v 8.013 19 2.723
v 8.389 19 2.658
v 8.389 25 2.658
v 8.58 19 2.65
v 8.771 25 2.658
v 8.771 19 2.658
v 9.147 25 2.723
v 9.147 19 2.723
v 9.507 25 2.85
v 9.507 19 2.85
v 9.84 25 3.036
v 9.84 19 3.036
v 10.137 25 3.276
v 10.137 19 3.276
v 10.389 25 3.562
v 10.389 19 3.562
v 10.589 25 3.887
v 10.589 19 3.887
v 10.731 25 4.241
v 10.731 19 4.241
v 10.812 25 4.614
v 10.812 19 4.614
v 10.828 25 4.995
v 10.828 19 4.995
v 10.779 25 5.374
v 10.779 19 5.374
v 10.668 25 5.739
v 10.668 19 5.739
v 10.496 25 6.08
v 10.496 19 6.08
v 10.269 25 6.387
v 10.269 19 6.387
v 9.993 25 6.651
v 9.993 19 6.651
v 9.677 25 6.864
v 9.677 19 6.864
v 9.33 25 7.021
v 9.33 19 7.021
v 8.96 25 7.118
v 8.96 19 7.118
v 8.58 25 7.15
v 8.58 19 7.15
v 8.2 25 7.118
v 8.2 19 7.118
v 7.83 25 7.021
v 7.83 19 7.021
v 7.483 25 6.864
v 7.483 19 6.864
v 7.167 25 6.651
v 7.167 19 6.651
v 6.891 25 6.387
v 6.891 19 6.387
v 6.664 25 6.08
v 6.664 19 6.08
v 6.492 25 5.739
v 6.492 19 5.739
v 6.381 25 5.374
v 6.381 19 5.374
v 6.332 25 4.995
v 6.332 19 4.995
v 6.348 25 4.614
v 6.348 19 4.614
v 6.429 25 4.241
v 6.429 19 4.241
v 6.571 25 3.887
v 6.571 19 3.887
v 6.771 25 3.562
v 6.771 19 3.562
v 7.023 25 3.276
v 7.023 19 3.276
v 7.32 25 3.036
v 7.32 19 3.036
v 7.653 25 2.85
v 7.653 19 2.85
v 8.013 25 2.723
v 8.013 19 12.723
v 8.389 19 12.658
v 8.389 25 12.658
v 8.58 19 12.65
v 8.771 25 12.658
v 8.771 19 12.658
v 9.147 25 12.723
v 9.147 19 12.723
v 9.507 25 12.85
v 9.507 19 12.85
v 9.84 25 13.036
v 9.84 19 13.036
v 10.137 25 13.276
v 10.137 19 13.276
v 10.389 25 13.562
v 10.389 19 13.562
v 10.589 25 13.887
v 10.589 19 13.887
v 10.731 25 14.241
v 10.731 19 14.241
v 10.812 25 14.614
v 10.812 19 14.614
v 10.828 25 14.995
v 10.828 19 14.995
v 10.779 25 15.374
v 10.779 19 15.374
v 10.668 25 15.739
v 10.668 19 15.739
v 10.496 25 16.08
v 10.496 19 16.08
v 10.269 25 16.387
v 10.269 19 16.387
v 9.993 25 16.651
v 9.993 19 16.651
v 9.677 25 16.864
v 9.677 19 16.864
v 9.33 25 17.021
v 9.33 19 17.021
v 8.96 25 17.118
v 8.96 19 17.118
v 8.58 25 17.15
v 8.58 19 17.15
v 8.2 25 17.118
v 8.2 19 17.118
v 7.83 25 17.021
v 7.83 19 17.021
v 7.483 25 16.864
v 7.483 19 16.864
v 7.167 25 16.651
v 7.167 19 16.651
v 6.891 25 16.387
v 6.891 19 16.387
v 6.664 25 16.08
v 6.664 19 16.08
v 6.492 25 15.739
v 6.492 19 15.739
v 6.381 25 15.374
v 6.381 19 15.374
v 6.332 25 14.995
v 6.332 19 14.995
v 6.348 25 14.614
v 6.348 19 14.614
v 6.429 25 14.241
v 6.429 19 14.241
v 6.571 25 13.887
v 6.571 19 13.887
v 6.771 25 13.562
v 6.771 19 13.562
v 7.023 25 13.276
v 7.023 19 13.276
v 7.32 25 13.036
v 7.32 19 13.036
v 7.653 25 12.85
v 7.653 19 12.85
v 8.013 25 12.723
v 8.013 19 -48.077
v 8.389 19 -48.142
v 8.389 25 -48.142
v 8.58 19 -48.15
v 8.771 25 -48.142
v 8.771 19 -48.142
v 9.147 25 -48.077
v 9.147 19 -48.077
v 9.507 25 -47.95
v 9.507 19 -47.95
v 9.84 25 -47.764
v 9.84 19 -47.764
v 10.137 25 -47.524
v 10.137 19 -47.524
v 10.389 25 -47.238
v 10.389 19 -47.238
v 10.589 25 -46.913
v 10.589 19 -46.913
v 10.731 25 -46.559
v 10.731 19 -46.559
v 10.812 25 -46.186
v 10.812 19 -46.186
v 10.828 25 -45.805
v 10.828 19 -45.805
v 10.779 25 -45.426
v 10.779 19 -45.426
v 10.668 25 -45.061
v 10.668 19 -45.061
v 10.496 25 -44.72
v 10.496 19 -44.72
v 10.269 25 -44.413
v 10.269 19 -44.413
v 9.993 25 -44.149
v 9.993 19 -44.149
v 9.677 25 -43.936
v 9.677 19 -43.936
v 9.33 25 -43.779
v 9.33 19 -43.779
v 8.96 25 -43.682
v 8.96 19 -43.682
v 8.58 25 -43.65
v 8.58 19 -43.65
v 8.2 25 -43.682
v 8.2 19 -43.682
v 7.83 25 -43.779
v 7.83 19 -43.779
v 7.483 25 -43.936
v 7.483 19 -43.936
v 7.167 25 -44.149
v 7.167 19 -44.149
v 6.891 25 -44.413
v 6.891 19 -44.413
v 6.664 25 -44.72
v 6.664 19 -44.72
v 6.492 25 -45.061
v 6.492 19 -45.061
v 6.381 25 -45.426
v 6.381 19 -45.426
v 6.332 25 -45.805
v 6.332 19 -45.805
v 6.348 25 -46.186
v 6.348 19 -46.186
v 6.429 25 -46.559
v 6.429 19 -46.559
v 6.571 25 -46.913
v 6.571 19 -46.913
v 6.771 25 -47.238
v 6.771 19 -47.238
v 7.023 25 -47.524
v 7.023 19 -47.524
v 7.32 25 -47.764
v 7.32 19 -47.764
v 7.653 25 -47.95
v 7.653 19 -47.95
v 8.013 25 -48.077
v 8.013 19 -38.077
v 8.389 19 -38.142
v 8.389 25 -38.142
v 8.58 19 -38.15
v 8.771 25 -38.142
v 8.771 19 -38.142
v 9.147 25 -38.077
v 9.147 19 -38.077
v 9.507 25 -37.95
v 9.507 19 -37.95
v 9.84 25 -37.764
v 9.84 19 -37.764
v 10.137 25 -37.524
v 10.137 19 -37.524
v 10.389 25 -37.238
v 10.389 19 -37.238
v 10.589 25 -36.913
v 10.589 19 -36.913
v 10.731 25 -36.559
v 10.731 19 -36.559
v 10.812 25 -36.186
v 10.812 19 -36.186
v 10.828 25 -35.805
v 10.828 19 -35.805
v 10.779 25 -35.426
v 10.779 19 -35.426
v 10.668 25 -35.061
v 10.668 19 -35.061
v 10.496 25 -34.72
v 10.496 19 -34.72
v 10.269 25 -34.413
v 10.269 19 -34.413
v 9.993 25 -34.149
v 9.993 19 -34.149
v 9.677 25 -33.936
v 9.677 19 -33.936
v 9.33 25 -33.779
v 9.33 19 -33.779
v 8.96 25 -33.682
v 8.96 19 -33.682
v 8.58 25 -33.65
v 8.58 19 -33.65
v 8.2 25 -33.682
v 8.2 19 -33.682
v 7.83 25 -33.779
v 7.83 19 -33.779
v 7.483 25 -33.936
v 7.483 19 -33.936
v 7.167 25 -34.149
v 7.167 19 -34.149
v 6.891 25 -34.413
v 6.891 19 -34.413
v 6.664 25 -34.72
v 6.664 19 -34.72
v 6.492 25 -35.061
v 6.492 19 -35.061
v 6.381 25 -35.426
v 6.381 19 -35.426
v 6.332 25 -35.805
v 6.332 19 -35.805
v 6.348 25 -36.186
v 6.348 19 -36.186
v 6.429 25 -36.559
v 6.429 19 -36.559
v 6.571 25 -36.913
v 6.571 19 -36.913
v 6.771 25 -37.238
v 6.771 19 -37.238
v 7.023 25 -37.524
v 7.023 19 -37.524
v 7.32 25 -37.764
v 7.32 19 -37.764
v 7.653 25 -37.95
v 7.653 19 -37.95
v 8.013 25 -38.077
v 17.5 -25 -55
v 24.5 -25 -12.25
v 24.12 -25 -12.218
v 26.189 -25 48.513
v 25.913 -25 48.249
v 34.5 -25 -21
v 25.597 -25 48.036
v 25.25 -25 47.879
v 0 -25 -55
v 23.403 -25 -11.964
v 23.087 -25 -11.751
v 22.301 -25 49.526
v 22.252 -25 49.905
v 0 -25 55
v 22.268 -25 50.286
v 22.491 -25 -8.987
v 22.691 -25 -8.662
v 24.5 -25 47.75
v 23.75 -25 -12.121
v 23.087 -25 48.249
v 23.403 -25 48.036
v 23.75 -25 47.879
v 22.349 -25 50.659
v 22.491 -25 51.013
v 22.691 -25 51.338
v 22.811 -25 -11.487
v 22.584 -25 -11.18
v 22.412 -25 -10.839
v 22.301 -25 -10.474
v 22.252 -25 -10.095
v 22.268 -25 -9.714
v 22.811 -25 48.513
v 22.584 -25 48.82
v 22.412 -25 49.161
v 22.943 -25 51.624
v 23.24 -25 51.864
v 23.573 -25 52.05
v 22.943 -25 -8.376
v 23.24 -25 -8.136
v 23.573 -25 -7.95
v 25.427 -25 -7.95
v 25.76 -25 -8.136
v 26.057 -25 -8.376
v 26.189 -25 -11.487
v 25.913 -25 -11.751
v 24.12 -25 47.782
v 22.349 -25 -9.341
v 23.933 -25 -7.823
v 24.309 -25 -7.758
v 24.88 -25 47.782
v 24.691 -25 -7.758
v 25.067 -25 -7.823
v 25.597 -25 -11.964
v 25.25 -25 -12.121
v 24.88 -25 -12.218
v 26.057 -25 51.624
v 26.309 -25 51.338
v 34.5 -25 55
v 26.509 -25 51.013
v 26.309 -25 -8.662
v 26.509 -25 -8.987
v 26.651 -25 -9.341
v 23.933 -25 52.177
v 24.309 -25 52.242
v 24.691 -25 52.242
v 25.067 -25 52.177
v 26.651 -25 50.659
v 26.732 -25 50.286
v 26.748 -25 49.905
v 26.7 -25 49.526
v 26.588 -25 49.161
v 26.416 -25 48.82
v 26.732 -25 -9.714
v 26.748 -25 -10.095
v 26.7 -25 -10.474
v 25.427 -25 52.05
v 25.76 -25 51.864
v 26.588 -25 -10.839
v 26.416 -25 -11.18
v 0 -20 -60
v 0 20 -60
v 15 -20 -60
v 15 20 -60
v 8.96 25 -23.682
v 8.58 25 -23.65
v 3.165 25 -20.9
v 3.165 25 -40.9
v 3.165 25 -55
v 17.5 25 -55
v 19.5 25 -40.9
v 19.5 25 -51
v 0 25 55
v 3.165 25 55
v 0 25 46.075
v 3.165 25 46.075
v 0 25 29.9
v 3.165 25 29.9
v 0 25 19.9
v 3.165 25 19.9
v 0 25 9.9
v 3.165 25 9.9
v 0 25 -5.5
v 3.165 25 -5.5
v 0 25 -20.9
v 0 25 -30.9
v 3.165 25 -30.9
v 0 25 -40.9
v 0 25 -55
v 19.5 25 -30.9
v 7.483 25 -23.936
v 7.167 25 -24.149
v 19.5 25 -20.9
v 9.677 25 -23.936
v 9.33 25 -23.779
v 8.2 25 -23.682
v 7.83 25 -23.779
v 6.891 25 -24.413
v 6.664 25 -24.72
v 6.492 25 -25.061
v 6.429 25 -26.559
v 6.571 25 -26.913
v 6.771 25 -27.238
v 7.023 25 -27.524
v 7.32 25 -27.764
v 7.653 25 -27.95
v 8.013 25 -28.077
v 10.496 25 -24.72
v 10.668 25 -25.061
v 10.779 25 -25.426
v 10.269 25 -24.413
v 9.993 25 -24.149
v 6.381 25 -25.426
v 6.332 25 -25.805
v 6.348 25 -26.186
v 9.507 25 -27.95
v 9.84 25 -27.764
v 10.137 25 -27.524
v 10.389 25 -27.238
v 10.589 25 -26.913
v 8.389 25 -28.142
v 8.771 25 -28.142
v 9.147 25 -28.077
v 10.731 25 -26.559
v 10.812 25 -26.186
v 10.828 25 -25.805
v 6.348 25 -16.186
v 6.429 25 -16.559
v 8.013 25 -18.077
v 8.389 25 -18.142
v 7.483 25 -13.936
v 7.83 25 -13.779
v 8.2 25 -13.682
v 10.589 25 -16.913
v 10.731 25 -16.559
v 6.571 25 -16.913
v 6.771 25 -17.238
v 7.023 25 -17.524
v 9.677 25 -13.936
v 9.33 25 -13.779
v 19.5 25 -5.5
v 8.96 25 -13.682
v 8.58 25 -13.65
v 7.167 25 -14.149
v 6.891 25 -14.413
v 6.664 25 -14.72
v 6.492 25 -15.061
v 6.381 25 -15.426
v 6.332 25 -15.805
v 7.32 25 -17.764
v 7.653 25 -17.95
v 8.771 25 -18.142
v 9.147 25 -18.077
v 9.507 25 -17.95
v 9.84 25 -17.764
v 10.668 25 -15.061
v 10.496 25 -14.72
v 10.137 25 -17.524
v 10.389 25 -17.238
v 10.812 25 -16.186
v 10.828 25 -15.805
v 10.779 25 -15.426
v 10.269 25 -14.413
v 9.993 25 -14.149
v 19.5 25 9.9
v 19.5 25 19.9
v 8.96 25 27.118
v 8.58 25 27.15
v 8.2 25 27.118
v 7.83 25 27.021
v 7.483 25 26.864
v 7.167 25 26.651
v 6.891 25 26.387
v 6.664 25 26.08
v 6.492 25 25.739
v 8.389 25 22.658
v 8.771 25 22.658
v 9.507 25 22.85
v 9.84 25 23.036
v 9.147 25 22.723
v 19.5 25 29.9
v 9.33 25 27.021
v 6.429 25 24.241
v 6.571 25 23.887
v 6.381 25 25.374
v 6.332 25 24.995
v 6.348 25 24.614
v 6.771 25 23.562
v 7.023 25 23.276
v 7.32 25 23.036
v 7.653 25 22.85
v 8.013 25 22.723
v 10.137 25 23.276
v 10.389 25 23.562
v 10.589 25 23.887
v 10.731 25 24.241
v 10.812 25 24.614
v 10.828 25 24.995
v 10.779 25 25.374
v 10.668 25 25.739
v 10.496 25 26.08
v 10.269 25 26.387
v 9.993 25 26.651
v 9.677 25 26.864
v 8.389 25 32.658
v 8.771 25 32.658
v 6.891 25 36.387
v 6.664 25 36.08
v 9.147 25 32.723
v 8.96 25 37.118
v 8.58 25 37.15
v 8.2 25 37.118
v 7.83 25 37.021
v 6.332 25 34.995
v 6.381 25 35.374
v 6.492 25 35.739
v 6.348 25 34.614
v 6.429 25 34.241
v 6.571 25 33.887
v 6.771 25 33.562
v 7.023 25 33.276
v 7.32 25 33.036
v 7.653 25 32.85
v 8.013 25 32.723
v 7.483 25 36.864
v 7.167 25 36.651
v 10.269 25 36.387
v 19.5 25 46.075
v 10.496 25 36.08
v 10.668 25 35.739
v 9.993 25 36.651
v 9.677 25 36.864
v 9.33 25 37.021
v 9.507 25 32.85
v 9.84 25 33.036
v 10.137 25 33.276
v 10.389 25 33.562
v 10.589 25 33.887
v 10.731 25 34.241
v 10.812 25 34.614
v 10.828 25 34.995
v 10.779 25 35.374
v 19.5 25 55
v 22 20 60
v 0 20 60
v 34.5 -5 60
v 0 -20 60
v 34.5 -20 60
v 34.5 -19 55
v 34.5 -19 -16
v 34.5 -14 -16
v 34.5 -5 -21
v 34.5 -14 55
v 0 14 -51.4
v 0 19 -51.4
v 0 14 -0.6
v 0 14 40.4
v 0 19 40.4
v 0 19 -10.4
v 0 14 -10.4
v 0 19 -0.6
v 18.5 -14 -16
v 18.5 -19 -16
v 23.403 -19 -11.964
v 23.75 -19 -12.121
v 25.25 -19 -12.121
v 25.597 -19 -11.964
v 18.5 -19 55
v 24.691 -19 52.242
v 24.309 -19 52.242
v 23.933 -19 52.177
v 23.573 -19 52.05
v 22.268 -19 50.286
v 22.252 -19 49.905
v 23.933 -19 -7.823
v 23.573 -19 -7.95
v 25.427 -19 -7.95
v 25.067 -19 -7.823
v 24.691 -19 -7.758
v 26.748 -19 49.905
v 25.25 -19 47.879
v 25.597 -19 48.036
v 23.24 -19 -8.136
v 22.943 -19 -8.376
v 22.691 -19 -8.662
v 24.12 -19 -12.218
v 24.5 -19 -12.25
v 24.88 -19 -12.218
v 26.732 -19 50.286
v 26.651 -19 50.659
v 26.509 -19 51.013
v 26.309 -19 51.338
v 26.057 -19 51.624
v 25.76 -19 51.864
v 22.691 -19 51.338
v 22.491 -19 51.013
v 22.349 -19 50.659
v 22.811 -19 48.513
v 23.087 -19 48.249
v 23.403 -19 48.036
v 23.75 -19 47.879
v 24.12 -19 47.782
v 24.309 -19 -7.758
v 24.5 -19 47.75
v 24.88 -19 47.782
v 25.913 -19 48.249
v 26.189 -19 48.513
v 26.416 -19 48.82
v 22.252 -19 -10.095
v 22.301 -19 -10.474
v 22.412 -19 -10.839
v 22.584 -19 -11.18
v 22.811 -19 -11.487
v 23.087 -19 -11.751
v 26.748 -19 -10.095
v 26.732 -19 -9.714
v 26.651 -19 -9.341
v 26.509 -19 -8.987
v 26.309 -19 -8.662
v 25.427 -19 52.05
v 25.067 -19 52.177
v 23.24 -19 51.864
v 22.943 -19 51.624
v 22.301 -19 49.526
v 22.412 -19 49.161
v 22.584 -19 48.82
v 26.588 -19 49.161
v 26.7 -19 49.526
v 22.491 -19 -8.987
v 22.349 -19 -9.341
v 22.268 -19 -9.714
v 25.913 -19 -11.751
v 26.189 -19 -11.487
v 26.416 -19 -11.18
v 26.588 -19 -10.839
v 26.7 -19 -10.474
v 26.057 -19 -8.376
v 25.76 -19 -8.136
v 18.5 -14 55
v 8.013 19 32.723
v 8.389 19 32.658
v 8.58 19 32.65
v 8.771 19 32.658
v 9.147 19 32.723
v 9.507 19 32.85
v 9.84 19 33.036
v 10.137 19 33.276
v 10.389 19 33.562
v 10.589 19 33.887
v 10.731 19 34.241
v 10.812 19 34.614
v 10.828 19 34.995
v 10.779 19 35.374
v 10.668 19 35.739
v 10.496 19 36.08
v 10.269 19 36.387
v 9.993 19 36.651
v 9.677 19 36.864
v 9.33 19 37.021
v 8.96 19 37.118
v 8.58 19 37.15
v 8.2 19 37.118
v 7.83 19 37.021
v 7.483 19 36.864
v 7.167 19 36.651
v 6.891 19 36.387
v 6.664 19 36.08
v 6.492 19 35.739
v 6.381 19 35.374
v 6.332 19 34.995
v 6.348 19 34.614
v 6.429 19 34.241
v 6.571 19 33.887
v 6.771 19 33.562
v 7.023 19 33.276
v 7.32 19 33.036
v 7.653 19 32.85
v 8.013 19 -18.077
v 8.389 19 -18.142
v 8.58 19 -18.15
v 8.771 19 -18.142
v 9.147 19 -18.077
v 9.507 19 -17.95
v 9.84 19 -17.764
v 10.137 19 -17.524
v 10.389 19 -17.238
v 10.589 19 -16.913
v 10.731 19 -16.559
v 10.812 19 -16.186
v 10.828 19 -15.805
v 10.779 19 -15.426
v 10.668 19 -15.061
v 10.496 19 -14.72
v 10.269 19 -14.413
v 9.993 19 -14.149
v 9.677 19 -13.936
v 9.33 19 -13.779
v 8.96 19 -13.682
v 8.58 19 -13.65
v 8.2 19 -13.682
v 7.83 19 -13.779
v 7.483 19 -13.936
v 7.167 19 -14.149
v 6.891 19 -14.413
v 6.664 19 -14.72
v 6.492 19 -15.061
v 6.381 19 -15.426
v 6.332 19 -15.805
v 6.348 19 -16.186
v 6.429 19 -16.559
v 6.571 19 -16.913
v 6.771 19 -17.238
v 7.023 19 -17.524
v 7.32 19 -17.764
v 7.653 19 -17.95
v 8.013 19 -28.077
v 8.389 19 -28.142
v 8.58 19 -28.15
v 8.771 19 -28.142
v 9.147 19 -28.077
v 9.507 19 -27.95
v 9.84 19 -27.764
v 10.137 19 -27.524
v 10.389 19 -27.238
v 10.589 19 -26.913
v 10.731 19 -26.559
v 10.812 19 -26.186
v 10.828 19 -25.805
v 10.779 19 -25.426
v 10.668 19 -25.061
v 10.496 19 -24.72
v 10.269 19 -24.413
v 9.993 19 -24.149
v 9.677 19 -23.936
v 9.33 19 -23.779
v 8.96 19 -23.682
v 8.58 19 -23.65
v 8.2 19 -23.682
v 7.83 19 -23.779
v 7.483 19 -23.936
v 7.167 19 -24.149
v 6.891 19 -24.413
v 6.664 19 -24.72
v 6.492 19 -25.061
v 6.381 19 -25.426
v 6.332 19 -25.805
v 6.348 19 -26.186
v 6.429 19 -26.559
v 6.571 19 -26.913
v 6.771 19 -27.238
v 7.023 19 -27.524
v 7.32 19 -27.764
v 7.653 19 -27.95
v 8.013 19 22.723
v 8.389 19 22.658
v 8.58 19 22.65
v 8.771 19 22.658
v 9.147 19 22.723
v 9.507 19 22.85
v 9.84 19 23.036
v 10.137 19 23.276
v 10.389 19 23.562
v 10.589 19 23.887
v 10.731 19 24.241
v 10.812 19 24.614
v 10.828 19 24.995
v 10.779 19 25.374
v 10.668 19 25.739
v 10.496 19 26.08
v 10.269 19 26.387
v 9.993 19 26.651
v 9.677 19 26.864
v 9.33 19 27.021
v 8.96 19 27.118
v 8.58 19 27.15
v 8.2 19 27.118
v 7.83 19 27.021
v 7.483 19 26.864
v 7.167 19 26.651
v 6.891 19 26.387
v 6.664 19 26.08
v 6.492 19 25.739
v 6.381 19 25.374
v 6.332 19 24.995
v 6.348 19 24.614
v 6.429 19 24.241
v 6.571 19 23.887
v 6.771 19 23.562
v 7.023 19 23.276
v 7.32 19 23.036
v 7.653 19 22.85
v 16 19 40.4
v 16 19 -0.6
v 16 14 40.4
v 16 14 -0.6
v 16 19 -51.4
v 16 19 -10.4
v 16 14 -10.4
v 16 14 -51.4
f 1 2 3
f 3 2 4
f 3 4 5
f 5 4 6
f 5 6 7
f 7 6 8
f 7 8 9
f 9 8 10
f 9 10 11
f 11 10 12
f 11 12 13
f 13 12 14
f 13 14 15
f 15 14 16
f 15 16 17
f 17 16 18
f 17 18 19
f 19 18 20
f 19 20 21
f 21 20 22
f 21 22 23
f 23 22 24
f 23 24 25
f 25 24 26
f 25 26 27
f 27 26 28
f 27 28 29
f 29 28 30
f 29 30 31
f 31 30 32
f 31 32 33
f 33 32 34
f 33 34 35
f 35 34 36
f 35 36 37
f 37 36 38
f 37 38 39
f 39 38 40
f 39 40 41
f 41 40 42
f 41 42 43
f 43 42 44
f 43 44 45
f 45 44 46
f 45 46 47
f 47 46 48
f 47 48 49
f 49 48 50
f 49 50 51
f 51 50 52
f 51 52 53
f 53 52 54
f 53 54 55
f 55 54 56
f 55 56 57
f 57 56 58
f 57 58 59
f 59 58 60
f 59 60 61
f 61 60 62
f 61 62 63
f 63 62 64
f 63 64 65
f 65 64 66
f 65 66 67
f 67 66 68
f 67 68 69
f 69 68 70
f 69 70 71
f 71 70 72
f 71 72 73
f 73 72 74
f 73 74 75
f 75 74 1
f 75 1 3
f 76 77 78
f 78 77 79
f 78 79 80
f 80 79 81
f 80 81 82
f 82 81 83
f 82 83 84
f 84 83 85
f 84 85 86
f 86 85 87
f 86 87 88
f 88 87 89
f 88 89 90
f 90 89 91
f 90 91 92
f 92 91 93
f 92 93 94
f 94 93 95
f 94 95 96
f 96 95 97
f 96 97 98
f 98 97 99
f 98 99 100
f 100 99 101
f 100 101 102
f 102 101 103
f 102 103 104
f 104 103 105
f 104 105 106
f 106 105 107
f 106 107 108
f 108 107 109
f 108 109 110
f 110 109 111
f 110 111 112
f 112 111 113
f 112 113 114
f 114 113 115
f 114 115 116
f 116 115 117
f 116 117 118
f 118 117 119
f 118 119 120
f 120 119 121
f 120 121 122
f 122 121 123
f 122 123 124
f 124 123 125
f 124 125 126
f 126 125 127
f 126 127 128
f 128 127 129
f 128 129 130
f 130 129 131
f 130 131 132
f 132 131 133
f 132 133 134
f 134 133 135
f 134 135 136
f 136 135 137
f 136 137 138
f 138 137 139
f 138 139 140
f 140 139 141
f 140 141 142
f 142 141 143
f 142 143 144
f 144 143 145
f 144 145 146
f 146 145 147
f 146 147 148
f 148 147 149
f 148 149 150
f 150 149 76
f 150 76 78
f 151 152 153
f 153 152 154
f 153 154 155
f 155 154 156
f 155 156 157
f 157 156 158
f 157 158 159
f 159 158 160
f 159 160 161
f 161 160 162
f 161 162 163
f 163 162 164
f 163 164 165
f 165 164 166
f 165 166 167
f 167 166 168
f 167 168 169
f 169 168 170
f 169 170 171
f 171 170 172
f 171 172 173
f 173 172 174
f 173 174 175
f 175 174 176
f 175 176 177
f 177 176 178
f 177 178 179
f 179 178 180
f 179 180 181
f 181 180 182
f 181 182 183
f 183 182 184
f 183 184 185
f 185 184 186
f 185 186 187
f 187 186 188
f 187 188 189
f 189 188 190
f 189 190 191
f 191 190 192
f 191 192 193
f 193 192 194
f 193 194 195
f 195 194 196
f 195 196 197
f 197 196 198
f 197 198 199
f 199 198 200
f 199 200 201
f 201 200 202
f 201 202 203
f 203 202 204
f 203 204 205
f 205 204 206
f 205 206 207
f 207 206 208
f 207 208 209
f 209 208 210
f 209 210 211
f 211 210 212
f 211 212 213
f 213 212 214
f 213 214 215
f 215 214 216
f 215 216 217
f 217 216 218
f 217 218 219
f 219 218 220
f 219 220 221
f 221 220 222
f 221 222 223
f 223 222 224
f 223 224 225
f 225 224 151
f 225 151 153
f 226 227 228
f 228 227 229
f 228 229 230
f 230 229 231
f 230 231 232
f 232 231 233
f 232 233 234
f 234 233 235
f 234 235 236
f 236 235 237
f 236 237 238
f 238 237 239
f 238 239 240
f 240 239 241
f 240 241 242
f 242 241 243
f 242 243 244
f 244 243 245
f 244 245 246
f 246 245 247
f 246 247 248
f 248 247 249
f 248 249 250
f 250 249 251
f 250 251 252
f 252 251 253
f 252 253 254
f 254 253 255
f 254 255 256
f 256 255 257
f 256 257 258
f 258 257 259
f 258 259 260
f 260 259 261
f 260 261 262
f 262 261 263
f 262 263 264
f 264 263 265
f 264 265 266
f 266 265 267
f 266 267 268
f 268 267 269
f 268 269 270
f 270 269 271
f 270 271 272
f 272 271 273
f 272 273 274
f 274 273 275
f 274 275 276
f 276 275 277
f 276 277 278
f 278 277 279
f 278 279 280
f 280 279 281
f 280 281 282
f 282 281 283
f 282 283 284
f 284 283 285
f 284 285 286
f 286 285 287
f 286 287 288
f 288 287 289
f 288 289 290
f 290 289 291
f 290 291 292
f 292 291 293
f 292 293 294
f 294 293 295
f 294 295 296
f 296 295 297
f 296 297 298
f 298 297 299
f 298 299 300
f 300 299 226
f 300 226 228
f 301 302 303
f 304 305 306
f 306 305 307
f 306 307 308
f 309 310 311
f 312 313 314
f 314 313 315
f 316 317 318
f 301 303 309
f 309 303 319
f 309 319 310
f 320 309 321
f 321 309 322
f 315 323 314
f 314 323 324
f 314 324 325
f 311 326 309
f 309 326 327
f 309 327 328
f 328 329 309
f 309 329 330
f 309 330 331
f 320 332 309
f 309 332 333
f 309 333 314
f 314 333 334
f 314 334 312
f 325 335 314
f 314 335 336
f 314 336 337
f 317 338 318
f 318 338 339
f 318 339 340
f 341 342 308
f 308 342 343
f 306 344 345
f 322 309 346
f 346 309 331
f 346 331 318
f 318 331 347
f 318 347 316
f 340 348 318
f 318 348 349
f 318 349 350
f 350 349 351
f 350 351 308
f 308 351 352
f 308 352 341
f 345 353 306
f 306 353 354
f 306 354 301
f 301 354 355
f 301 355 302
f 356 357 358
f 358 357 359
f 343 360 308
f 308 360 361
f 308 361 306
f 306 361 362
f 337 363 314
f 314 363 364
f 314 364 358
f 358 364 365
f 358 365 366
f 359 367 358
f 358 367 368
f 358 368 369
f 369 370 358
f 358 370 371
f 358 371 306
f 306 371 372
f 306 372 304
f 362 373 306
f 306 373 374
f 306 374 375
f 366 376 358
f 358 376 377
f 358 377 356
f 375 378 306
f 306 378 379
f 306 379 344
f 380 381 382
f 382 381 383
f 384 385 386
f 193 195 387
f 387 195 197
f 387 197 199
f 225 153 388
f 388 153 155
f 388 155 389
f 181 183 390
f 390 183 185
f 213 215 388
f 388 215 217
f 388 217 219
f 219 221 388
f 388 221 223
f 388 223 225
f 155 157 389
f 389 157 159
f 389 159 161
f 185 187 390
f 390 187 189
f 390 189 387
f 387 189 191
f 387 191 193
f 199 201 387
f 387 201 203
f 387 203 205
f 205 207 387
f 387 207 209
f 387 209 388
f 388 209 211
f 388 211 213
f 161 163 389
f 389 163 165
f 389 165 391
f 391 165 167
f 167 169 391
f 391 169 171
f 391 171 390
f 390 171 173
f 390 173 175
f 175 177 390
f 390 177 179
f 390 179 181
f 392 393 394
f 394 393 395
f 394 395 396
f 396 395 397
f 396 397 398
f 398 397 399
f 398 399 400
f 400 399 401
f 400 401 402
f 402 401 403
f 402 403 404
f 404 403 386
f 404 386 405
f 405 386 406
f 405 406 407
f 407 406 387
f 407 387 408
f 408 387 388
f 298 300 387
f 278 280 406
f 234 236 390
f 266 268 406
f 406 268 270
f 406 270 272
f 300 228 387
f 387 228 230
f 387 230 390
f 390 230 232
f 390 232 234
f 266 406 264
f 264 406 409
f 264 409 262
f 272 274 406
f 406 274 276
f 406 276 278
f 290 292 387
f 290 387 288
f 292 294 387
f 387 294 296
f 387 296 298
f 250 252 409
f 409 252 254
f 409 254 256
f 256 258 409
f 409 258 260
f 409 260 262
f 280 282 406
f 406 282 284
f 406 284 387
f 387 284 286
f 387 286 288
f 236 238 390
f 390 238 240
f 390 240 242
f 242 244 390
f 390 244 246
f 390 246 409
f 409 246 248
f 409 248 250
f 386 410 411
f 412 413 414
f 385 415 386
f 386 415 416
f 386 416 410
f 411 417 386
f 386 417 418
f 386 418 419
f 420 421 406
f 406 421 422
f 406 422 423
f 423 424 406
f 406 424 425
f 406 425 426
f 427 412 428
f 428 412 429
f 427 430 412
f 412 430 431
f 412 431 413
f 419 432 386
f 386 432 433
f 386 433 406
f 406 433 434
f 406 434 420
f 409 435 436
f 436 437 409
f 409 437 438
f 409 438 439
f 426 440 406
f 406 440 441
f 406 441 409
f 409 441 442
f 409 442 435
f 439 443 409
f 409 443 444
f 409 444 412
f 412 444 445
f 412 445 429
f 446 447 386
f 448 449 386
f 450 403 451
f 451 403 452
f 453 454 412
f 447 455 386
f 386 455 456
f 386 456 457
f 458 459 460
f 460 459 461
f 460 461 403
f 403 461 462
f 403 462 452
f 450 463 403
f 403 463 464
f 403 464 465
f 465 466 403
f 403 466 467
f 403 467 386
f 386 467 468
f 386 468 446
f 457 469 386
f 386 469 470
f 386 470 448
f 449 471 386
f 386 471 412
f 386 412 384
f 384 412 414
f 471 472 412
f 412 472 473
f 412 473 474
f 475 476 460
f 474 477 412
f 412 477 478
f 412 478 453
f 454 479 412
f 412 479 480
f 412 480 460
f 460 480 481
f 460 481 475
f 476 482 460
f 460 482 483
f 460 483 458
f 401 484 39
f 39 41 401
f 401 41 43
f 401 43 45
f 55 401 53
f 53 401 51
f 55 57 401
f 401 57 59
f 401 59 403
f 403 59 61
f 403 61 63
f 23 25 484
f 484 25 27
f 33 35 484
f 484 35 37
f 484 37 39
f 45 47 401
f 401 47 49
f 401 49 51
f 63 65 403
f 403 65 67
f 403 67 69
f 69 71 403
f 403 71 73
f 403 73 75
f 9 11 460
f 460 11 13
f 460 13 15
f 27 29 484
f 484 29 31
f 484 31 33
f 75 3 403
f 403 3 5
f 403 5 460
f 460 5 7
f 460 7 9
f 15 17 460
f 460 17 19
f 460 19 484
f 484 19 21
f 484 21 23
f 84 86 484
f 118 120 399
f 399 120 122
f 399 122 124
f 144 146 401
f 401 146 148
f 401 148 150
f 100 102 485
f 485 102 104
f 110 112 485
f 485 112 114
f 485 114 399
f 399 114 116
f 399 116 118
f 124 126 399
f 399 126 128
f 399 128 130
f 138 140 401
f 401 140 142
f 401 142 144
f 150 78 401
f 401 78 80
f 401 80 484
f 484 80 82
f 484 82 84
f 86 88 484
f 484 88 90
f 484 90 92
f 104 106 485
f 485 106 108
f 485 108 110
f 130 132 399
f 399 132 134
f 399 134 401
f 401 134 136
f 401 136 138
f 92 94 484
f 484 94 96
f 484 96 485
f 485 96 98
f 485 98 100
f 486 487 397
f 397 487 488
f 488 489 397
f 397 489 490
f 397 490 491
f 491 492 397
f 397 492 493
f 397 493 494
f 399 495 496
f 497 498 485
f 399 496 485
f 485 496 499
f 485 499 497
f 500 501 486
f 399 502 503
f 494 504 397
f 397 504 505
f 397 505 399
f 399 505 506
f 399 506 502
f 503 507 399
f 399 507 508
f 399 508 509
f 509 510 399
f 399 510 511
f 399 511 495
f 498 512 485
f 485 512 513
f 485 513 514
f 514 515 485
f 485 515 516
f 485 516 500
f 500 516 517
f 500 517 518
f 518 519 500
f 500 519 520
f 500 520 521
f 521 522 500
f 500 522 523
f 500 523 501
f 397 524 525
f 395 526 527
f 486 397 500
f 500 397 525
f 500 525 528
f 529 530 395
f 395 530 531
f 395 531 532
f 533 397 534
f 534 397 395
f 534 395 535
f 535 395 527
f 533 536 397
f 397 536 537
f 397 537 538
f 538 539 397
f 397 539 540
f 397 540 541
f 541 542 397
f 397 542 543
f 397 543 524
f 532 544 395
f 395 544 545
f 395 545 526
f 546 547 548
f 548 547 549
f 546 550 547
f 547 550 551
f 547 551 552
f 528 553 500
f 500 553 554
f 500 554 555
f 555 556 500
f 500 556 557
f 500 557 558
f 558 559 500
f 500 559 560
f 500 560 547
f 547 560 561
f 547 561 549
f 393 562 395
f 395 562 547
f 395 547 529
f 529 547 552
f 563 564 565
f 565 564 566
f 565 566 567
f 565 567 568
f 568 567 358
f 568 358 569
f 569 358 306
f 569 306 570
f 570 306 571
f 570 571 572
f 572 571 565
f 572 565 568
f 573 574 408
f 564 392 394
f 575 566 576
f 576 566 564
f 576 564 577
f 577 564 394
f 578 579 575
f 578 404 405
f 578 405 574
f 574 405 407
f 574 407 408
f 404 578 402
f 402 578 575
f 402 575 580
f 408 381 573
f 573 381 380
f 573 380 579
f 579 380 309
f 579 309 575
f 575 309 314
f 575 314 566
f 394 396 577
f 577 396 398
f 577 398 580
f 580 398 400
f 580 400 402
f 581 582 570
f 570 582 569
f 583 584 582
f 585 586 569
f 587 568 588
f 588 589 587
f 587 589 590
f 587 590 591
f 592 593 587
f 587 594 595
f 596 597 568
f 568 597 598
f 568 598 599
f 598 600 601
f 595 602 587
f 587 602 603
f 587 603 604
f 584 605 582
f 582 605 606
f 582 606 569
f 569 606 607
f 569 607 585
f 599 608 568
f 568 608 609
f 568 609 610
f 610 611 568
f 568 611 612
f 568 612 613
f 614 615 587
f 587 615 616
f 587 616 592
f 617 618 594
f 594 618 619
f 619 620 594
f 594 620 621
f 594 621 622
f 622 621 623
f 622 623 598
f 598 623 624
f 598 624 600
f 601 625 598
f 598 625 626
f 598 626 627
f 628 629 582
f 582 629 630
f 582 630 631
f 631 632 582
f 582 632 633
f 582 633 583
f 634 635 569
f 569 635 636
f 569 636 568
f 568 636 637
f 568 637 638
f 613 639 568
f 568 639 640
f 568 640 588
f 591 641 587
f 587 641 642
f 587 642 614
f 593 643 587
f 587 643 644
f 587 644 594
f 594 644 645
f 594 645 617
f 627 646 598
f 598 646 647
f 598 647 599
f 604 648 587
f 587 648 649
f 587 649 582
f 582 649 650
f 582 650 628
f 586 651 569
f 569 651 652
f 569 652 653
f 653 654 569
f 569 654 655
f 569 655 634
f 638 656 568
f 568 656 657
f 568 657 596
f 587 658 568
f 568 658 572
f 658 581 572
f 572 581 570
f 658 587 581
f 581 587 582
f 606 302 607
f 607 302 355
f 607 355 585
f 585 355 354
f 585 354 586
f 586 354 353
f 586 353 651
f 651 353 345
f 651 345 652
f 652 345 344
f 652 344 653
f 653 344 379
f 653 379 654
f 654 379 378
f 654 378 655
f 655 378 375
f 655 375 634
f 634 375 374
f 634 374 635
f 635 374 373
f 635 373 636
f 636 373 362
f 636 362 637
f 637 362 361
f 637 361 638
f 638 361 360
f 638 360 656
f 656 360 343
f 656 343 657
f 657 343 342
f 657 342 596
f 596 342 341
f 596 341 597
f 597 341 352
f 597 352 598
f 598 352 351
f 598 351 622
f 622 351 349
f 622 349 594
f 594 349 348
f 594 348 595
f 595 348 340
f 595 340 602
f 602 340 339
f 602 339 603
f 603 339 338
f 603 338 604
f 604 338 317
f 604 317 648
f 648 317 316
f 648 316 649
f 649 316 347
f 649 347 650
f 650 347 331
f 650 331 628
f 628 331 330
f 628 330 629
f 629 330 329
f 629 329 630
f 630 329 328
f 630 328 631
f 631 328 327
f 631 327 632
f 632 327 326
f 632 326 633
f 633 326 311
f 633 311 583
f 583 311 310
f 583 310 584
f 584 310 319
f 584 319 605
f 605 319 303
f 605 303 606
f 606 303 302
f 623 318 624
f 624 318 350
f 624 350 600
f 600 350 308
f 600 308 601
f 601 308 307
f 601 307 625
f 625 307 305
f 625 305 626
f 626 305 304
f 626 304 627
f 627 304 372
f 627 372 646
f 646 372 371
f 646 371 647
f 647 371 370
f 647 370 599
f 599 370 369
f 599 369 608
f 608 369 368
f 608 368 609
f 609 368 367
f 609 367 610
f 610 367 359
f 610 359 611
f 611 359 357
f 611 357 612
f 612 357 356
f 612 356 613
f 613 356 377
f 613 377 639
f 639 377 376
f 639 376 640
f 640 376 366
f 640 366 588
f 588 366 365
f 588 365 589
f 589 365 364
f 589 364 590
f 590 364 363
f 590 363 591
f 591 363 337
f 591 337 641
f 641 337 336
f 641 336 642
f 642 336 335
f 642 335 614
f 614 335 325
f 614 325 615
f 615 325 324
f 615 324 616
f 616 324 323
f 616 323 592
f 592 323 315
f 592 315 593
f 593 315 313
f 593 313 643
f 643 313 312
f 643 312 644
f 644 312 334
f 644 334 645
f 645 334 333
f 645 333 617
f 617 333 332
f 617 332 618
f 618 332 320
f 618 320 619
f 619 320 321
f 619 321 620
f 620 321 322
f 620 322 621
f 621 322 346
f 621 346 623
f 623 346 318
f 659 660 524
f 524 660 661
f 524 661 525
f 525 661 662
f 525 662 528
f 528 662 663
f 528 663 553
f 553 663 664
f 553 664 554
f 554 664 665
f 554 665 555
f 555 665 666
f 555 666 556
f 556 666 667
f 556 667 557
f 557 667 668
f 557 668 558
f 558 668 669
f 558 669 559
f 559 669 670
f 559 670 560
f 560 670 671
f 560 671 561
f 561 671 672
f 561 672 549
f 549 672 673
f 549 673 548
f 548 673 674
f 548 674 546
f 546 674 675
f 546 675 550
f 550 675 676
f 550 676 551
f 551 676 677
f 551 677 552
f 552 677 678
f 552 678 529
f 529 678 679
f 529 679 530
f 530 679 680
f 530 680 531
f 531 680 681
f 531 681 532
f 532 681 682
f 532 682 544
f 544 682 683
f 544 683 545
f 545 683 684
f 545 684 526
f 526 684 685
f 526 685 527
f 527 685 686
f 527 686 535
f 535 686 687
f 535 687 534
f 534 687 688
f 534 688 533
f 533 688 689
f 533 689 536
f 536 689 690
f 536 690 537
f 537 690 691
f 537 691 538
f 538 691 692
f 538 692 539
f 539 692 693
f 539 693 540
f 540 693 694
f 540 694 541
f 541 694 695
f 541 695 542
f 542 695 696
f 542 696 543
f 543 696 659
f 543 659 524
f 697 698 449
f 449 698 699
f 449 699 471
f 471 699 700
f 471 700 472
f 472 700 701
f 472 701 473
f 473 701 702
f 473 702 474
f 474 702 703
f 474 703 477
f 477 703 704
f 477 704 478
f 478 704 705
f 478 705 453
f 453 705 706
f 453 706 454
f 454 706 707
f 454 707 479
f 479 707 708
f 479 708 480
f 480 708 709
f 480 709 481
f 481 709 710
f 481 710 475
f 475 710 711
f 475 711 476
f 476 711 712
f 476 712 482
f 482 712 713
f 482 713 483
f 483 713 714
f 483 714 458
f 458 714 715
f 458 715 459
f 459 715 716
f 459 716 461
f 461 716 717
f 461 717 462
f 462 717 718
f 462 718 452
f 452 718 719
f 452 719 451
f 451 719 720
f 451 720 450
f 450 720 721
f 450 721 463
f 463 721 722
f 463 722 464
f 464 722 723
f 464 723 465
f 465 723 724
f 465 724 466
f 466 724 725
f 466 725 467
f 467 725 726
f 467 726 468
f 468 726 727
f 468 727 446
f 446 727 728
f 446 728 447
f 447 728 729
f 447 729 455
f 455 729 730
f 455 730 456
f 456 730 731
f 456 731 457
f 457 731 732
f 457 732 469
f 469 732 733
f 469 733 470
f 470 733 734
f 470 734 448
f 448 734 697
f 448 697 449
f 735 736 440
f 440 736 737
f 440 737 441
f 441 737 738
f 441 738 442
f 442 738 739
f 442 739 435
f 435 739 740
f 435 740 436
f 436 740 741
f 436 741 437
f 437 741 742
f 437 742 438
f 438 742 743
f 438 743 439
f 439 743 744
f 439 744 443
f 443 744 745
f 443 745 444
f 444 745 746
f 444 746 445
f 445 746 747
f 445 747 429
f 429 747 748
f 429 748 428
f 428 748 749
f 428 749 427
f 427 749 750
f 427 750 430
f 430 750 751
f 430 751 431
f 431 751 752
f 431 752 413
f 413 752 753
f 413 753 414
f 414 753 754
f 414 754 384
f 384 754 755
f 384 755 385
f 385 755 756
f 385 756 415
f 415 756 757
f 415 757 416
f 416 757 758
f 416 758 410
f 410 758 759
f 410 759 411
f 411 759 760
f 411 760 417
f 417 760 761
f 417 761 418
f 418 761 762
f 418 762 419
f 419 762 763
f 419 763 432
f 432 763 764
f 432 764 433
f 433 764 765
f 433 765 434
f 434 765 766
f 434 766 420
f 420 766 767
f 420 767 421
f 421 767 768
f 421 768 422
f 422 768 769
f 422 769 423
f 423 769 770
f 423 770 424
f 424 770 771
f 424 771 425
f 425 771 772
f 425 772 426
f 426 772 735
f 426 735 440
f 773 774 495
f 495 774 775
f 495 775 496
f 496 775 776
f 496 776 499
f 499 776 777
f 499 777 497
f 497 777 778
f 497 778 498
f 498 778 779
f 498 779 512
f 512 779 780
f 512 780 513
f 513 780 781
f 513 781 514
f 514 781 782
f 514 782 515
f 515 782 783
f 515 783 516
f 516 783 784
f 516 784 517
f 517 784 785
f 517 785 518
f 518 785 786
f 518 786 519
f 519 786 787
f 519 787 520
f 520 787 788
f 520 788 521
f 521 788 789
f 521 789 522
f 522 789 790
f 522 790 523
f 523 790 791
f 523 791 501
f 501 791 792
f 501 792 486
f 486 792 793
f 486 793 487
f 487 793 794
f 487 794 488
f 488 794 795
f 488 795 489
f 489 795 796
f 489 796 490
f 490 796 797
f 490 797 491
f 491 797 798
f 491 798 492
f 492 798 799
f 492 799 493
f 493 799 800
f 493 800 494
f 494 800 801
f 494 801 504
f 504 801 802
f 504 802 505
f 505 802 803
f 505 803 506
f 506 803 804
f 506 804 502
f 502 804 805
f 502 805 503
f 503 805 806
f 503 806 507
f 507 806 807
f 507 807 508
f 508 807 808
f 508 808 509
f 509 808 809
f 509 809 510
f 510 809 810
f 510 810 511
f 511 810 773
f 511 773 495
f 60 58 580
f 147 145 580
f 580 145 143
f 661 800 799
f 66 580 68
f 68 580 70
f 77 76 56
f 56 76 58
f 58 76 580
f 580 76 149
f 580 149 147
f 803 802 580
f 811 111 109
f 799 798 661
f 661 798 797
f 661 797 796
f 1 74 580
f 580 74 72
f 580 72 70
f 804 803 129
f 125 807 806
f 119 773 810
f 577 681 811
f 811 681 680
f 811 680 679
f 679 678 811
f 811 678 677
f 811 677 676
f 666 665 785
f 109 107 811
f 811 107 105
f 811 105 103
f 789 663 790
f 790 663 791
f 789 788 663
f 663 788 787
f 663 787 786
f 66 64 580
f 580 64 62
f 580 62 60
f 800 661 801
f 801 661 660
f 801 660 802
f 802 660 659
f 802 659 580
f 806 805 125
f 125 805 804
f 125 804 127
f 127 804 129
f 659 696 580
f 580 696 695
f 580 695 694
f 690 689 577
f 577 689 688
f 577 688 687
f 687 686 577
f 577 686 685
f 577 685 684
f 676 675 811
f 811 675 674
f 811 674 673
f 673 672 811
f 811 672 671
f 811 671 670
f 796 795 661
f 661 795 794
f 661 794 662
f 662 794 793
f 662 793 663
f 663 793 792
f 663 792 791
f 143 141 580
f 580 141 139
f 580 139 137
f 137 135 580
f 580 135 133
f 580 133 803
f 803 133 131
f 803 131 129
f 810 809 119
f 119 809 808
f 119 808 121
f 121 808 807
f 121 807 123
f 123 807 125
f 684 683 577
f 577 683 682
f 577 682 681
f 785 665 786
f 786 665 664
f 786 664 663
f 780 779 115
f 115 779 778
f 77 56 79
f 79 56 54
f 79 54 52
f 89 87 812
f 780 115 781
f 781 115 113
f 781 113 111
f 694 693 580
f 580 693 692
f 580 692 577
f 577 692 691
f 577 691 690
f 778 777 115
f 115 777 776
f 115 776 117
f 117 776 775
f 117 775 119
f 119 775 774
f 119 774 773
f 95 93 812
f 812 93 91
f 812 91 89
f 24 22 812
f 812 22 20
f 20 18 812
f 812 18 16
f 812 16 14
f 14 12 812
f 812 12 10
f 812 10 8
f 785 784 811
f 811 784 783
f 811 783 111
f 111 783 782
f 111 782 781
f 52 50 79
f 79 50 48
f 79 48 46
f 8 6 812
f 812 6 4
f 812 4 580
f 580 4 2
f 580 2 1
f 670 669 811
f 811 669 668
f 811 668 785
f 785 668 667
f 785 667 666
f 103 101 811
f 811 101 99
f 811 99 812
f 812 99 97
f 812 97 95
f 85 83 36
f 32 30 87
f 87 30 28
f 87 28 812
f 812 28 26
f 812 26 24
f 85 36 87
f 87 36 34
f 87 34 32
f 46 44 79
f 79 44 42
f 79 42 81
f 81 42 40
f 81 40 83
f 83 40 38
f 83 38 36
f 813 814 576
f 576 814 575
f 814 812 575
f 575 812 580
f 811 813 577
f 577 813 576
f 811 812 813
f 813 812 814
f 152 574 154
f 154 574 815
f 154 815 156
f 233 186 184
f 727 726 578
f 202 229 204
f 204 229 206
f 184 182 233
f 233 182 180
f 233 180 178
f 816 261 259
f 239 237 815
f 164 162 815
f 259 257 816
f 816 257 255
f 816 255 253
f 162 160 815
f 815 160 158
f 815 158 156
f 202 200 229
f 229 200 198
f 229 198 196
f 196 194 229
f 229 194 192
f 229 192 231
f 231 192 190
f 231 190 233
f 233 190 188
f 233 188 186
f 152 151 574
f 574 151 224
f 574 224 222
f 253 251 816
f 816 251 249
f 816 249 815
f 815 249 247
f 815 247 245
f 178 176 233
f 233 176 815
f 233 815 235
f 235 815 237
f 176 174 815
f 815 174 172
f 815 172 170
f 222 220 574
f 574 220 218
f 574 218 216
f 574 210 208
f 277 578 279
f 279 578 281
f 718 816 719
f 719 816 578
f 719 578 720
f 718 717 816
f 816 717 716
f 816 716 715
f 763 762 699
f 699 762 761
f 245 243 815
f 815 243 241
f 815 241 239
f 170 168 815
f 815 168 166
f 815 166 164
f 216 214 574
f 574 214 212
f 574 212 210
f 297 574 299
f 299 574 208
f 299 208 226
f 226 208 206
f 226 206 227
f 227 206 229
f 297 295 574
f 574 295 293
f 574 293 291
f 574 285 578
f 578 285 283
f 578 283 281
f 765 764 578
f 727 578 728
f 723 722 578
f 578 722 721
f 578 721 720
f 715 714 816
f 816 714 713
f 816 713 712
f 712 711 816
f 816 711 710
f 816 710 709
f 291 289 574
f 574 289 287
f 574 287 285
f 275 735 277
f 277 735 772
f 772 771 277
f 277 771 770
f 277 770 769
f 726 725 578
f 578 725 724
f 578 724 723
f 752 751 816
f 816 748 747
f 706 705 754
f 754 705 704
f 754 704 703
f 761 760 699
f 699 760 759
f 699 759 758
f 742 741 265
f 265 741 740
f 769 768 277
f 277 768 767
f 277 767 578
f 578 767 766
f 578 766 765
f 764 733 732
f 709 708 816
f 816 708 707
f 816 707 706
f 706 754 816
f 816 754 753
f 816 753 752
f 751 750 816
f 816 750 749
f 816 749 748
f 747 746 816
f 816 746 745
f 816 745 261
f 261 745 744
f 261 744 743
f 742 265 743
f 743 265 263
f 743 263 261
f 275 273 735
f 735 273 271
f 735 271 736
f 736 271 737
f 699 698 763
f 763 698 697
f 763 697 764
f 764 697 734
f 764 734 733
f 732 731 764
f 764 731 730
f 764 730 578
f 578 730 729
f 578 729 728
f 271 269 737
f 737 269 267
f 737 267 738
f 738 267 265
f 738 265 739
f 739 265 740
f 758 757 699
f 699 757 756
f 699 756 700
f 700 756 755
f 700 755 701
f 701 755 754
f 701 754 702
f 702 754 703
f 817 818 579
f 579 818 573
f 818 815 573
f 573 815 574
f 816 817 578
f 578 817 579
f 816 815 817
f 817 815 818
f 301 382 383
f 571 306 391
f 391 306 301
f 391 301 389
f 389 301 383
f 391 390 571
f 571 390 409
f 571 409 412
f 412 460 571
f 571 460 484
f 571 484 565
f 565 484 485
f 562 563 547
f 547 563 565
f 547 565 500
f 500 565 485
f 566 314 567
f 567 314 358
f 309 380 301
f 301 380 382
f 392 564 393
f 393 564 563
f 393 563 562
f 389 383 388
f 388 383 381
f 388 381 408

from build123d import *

# Parameters (mm, degrees)
SKETCH1_W                     = 120
SKETCH1_H                     = 50
BOSS_EXTRUDE1_DEPTH           = 34.5
SKETCH2_W                     = 71
SKETCH2_H                     = 5
CUT_EXTRUDE1_DEPTH            = 16
M4_CLEARANCE_HOLE1_D          = 4.5
M4_CLEARANCE_HOLE1_DEPTH      = 6
M4_CLEARANCE_HOLE2_AT_2_COUNT = 2
M4_CLEARANCE_HOLE2_AT_2_PITCH = 50.8
LPATTERN1_COUNT               = 4
LPATTERN1_PITCH               = 10
SKETCH9_W                     = 41
SKETCH9_H                     = 5
CUT_EXTRUDE2_DEPTH            = 16
CUT_EXTRUDE3_DEPTH            = 86.382960829
CHAMFER2_SIZE                 = 15
CHAMFER2_SIZE2                = 30
CHAMFER3_SIZE                 = 5


with BuildPart() as part:
    # Sketch1 → Boss-Extrude1 (new body)
    with BuildSketch(Plane(origin=(0, 0, 0), x_dir=(0, 0, -1), z_dir=(1, 0, 0))):
        Rectangle(SKETCH1_W, SKETCH1_H)
    extrude(amount=BOSS_EXTRUDE1_DEPTH)

    # Sketch2 → Cut-Extrude1 (cut)
    with BuildSketch(Plane(origin=(34.5, 0, 0), x_dir=(0, 0, -1), z_dir=(1, 0, 0))):
        with Locations((-19.5, -16.5)):
            Rectangle(SKETCH2_W, SKETCH2_H)
    extrude(amount=-CUT_EXTRUDE1_DEPTH, mode=Mode.SUBTRACT)

    # M4 Clearance Hole1
    with Locations(Plane(origin=(0, -25, 0), x_dir=(-1, 0, 0), z_dir=(0, -1, 0))):
        with Locations((-24.5, -50), (-24.5, 10)):
            Hole(M4_CLEARANCE_HOLE1_D / 2, depth=M4_CLEARANCE_HOLE1_DEPTH)

    # Sketch8 → M4 Clearance Hole2 (revolve, cut)
    with BuildSketch(Plane(origin=(8.58, 25, -15.9), x_dir=(0, 0, 1), z_dir=(1, 0, 0))):
        Polygon((0, 0), (0, 7.351936393), (2.25, 6), (2.25, 0), align=None)
    m4_clearance_hole2 = revolve(axis=Axis((8.58, 31.35, -15.9), (0, -1, 0)), mode=Mode.SUBTRACT)

    # M4 Clearance Hole2 at 2: M4 Clearance Hole2 ×2
    with Locations(*[(0, 0, i * M4_CLEARANCE_HOLE2_AT_2_PITCH) for i in range(1, M4_CLEARANCE_HOLE2_AT_2_COUNT)]):
        add(m4_clearance_hole2, mode=Mode.SUBTRACT)

    # LPattern1: M4 Clearance Hole2 ×4
    with Locations(*[(0, 0, -i * LPATTERN1_PITCH) for i in range(1, LPATTERN1_COUNT)]):
        add(m4_clearance_hole2, mode=Mode.SUBTRACT)

    # LPattern1 copy 1 sketch → LPattern1 copy 1 (revolve, cut)
    with BuildSketch(Plane(origin=(8.58, 25, 24.9), x_dir=(0, 0, 1), z_dir=(1, 0, 0))):
        Polygon((0, 0), (0, 7.351936393), (2.25, 6), (2.25, 0), align=None)
    revolve(axis=Axis((8.58, 31.35, 24.9), (0, -1, 0)), mode=Mode.SUBTRACT)

    # LPattern1 copy 2 sketch → LPattern1 copy 2 (revolve, cut)
    with BuildSketch(Plane(origin=(8.58, 25, 14.9), x_dir=(0, 0, 1), z_dir=(1, 0, 0))):
        Polygon((0, 0), (0, 7.351936393), (2.25, 6), (2.25, 0), align=None)
    revolve(axis=Axis((8.58, 31.35, 14.9), (0, -1, 0)), mode=Mode.SUBTRACT)

    # LPattern1 copy 3 sketch → LPattern1 copy 3 (revolve, cut)
    with BuildSketch(Plane(origin=(8.58, 25, 4.9), x_dir=(0, 0, 1), z_dir=(1, 0, 0))):
        Polygon((0, 0), (0, 7.351936393), (2.25, 6), (2.25, 0), align=None)
    revolve(axis=Axis((8.58, 31.35, 4.9), (0, -1, 0)), mode=Mode.SUBTRACT)

    # Sketch9 → Cut-Extrude2 (cut)
    with BuildSketch(Plane.ZY):
        with Locations((-30.9, 16.5)):
            Rectangle(SKETCH9_W, SKETCH9_H)
        with Locations((19.9, 16.5)):
            Rectangle(SKETCH9_W, SKETCH9_H)
    extrude(amount=-CUT_EXTRUDE2_DEPTH, mode=Mode.SUBTRACT)

    # Sketch10 → Cut-Extrude3 (cut, through all)
    with BuildSketch(Plane(origin=(0, 25, 0), x_dir=(1, 0, 0), z_dir=(0, 1, 0))):
        Polygon((34.5, 60), (15, 60), (34.5, 21), align=None)
    extrude(amount=-CUT_EXTRUDE3_DEPTH, mode=Mode.SUBTRACT)

    # Chamfer2
    chamfer2_edges = [part.edges().sort_by_distance(p)[0] for p in [
        (34.5, 25, 19.5),
    ]]
    chamfer2_side = [part.faces().sort_by_distance(p)[0] for p in [
        (16.428375325, 25, 5.112583766),
    ]]
    chamfer(chamfer2_edges, length=CHAMFER2_SIZE, length2=CHAMFER2_SIZE2, reference=chamfer2_side[0])

    # Chamfer3
    chamfer3_edges = [part.edges().sort_by_distance(p)[0] for p in [
        (7.5, 25, -60),
        (7.5, -25, -60),
        (9.75, 25, 60),
        (17.25, -25, 60),
    ]]
    chamfer(chamfer3_edges, length=CHAMFER3_SIZE)


solid = part.part
